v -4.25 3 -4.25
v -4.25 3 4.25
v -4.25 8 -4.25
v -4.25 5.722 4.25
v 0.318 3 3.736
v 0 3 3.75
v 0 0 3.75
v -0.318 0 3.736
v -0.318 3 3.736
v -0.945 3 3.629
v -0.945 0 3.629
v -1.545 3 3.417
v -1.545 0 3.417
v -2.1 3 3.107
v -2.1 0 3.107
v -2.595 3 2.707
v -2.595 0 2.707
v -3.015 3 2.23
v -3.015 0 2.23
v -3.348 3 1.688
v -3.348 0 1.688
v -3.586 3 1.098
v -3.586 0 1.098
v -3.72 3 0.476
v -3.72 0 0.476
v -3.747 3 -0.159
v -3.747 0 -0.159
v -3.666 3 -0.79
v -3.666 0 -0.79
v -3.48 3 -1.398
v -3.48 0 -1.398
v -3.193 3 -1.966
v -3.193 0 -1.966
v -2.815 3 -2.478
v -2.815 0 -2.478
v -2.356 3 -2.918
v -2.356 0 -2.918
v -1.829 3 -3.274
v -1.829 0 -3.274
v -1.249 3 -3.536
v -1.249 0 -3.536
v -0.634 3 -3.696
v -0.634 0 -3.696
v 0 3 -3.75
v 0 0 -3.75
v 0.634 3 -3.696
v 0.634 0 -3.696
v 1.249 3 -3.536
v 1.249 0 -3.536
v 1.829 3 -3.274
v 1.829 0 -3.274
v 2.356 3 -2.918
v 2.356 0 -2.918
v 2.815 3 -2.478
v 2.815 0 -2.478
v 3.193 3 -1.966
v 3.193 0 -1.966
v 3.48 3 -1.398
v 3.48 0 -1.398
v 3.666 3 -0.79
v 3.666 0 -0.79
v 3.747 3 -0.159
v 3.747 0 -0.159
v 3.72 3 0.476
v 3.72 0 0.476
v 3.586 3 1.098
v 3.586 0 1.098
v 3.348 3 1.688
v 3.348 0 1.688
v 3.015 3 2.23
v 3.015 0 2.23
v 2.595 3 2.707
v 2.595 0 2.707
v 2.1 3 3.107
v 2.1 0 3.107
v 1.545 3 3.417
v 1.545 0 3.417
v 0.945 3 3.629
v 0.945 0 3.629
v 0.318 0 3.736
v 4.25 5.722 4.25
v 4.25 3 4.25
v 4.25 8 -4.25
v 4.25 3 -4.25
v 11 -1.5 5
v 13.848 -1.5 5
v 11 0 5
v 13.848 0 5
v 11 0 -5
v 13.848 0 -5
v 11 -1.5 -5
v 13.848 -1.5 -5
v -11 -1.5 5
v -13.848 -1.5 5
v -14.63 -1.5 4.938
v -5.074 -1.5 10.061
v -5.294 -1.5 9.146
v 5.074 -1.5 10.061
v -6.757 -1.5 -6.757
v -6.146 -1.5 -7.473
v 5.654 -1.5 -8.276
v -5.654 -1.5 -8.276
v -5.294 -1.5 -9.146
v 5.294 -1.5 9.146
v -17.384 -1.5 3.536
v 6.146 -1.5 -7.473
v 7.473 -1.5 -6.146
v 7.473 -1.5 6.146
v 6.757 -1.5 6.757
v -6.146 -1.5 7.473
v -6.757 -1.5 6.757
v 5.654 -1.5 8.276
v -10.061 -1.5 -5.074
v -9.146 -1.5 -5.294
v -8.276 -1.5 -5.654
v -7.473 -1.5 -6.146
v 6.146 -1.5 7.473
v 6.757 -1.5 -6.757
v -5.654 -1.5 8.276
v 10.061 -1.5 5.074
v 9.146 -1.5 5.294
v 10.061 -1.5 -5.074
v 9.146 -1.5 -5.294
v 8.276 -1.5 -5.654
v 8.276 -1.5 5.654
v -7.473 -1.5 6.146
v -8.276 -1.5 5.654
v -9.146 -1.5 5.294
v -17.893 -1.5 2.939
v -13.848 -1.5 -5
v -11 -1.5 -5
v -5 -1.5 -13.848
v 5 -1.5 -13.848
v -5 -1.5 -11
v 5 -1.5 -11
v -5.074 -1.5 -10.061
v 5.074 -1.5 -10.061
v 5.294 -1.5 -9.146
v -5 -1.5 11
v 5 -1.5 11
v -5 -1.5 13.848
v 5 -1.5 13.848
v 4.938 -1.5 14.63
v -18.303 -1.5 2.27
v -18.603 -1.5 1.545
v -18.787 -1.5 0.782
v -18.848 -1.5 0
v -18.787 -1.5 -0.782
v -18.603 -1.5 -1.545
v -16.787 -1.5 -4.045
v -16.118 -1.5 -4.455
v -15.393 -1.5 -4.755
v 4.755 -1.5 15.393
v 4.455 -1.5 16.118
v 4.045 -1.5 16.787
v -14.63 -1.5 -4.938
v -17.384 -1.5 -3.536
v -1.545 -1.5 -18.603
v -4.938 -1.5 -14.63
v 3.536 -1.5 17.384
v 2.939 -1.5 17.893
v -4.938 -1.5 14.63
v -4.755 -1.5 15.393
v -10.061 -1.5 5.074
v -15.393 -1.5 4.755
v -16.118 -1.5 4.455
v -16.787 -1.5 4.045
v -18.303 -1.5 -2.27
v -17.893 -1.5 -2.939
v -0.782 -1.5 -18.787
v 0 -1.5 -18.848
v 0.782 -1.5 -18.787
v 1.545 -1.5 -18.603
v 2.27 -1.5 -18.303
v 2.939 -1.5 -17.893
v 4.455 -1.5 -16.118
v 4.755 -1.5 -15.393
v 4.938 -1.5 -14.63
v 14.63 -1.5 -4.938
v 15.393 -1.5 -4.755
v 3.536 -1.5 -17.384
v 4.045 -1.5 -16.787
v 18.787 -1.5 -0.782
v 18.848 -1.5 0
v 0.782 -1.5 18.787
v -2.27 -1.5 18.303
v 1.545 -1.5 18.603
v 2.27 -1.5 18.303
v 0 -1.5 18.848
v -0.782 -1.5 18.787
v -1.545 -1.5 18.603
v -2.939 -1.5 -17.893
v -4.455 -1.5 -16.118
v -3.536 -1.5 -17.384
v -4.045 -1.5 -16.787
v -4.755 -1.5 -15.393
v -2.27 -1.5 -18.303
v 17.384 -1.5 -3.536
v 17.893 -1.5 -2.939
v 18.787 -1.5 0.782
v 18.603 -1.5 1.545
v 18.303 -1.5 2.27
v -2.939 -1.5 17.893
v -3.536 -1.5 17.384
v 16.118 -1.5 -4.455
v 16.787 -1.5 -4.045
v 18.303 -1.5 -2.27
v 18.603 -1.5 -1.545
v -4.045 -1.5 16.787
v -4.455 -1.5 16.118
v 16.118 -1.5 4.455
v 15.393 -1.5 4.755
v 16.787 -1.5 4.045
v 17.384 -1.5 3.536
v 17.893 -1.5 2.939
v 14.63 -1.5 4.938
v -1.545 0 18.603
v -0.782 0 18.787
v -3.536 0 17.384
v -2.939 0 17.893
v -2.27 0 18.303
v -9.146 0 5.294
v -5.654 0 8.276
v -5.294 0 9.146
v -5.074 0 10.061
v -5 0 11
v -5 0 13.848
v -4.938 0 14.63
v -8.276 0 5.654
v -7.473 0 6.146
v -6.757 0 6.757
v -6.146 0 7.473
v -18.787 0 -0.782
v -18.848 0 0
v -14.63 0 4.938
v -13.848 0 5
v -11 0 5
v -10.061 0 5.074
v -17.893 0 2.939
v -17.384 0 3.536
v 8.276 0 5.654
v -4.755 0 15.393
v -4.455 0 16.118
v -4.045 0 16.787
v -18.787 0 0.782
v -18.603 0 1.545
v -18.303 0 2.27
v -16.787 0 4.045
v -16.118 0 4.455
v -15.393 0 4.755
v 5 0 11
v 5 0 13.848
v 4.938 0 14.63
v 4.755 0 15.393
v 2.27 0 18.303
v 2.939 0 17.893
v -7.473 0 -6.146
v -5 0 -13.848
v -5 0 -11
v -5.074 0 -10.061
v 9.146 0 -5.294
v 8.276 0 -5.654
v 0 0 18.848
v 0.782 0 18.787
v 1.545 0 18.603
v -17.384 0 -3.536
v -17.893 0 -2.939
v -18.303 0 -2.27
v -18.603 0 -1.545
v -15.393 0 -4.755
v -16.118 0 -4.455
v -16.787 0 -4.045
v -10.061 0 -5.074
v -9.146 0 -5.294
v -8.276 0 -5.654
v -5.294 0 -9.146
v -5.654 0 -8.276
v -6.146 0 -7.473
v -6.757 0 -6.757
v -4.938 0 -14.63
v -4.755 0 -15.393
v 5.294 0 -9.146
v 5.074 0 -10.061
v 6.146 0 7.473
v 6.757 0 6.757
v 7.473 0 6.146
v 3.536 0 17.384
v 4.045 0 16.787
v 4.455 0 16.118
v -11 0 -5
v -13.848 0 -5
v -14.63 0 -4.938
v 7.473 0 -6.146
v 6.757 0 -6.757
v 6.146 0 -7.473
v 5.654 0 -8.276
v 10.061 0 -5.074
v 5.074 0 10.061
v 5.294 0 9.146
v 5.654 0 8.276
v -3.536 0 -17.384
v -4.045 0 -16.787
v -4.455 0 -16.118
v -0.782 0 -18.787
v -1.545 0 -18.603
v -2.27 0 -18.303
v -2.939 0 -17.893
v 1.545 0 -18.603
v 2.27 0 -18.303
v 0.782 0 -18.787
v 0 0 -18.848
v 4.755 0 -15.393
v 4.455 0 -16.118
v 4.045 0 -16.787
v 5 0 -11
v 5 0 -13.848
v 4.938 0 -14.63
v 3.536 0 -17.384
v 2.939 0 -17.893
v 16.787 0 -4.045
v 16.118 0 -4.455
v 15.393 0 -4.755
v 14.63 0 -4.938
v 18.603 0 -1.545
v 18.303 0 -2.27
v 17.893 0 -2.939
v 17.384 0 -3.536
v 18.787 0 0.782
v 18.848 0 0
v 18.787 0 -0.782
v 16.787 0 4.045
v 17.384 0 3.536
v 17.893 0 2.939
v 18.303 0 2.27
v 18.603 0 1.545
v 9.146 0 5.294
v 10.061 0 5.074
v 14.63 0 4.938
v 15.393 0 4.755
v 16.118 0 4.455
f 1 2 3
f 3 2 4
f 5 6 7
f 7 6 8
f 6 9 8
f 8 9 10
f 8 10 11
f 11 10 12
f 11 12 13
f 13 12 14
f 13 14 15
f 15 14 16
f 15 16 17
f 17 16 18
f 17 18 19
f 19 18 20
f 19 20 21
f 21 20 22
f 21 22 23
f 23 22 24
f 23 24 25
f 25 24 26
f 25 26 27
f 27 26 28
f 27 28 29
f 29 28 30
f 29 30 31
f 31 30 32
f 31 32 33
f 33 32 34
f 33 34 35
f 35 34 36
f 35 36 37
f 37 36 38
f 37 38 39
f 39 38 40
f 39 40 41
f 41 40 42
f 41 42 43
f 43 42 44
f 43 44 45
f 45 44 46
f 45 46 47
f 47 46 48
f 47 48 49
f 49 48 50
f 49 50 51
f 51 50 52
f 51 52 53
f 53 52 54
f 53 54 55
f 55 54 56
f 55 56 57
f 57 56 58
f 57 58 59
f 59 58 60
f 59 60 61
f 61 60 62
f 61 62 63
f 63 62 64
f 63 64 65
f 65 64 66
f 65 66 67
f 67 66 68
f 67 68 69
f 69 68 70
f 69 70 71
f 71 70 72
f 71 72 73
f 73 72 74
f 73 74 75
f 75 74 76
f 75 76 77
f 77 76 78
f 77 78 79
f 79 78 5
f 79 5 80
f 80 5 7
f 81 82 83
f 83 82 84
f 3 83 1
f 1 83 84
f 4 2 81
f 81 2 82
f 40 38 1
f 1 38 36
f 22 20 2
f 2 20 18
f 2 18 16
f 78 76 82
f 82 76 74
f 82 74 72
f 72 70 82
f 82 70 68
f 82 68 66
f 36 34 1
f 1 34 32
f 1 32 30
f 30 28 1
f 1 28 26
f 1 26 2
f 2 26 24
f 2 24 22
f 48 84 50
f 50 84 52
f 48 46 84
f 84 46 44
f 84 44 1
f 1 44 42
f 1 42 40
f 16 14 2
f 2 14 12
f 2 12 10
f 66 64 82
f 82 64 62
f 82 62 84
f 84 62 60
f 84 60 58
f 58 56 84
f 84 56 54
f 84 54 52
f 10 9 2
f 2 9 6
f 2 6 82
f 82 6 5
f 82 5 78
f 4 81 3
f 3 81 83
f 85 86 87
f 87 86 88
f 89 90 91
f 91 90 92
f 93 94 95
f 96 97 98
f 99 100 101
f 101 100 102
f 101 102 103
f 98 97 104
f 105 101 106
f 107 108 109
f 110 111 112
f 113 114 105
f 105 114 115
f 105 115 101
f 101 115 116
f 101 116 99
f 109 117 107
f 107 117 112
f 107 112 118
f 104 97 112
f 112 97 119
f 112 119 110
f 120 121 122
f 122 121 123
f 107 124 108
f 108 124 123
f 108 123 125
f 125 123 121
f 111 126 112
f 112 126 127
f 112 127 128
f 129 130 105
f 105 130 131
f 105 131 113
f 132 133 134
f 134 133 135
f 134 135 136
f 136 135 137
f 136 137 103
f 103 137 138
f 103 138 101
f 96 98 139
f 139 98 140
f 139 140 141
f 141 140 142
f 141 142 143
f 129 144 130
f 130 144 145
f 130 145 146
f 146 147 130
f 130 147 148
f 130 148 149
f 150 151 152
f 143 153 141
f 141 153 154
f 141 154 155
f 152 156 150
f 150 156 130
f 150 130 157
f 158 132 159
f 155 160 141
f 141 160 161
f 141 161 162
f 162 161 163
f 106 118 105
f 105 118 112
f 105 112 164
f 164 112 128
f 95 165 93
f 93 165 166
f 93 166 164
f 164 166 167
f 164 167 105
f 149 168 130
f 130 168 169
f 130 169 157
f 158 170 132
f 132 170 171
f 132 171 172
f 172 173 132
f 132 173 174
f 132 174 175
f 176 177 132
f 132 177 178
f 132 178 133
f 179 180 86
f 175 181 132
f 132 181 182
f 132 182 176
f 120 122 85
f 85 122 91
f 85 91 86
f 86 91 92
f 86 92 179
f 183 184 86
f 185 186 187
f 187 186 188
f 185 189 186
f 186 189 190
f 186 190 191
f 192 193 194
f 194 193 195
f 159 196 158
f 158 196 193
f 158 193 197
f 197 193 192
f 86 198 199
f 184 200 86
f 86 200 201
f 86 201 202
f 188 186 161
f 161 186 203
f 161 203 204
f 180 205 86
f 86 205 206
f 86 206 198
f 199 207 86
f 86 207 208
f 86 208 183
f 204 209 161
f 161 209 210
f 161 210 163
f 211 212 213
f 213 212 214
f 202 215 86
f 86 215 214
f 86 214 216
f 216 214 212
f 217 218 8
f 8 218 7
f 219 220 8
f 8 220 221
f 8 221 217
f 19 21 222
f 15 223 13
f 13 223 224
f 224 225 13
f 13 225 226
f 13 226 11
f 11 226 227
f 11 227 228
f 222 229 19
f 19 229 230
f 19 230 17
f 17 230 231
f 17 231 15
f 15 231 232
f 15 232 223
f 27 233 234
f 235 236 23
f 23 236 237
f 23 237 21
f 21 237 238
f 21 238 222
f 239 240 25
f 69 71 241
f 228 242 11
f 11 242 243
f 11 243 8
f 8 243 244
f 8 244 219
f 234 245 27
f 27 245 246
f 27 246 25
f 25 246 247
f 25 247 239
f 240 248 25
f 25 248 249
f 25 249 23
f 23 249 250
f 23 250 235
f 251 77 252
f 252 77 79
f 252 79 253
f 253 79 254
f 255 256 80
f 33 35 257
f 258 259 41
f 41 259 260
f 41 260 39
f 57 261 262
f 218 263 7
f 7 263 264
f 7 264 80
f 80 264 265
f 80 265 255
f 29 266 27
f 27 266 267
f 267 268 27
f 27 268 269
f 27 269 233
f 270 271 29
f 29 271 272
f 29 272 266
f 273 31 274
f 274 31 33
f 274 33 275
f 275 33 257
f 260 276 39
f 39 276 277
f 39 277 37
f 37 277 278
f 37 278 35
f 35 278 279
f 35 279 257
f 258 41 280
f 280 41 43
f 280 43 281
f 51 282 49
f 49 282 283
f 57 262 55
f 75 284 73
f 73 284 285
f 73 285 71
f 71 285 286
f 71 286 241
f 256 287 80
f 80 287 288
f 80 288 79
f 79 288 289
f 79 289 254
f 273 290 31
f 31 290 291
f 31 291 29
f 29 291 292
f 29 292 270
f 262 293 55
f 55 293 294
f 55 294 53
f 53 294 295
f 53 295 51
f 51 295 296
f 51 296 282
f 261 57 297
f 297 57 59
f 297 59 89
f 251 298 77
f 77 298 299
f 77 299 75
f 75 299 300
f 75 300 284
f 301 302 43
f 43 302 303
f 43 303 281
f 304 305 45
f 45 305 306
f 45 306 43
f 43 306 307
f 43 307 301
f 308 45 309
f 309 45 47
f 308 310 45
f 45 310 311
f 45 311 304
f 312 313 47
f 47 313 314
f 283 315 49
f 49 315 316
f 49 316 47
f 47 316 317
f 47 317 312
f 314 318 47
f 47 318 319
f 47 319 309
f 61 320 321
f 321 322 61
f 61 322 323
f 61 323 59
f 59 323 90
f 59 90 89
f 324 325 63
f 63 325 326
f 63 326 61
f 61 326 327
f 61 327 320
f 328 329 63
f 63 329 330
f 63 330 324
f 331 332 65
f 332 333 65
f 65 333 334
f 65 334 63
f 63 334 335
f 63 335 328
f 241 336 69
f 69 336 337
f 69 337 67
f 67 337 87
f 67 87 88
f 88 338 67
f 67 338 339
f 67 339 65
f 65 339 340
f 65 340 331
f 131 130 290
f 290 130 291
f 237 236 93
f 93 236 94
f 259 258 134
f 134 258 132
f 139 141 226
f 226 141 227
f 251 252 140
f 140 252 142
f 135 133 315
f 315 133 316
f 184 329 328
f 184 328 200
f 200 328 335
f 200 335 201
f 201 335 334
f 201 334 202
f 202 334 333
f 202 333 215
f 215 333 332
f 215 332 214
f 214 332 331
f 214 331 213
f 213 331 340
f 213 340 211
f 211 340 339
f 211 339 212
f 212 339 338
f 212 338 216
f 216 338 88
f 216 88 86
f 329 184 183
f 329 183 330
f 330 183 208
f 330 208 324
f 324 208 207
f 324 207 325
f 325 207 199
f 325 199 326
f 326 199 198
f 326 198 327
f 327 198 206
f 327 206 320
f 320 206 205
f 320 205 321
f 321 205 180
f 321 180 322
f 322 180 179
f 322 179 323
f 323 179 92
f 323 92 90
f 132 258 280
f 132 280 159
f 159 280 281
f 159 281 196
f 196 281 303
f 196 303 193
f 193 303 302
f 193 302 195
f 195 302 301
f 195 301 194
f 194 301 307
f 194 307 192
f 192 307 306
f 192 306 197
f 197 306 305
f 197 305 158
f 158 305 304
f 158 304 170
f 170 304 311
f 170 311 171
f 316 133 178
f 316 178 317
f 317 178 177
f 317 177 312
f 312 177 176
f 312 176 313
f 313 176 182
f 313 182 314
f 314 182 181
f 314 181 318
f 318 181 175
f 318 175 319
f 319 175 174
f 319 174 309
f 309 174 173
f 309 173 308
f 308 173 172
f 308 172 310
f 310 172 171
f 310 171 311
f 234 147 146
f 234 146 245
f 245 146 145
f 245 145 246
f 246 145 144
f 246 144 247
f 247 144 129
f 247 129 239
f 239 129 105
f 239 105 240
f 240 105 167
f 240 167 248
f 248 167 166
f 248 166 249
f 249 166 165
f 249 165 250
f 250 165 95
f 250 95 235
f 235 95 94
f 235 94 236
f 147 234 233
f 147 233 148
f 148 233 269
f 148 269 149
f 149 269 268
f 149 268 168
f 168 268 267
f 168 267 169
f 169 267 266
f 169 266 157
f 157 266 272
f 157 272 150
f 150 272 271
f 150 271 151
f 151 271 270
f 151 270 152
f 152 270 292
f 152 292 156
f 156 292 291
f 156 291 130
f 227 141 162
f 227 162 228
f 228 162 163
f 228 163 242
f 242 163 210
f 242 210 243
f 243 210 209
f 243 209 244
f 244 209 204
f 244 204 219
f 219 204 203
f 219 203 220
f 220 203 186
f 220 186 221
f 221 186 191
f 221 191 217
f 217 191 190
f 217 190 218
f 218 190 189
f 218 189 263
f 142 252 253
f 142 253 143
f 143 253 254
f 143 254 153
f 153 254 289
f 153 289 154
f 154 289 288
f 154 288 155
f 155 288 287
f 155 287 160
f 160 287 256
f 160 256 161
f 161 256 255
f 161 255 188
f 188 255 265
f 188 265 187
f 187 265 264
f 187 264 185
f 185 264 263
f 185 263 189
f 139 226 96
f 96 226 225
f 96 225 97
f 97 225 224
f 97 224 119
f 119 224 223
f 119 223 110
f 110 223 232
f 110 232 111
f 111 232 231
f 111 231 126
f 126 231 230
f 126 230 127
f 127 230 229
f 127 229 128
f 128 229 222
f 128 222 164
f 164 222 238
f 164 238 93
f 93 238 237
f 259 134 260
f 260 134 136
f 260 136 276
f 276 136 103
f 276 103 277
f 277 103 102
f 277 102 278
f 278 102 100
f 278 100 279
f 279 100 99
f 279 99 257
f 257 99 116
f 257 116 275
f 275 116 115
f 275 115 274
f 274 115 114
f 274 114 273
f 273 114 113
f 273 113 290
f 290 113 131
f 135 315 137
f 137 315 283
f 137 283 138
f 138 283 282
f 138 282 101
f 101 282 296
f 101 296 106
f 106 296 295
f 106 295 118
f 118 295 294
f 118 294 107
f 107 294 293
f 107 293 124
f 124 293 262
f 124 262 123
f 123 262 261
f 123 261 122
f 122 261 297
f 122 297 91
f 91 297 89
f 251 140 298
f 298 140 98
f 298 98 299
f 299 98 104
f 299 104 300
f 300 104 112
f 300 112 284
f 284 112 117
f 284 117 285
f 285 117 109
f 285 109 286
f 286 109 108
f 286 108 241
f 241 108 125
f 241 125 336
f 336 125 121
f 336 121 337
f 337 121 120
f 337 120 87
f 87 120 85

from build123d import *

# Parameters (mm, degrees)
SKETCH1_R           = 3.75
BOSS_EXTRUDE1_DEPTH = 3
SKETCH5_W           = 8.5
SKETCH5_H           = 8.5
BOSS_EXTRUDE3_DEPTH = 5
CUT_EXTRUDE4_DEPTH  = 30
SKETCH2_W           = 10
SKETCH2_H           = 37.69615365
SKETCH2_W_2         = 37.69615365
SKETCH2_H_2         = 10
BOSS_EXTRUDE4_DEPTH = 1.5
FILLET1_R           = 5
FILLET2_R           = 6


with BuildPart() as part:
    # Sketch1 → Boss-Extrude1 (new body)
    with BuildSketch(Plane(origin=(0, 0, 0), x_dir=(1, 0, 0), z_dir=(0, 1, 0))):
        with Locations(Location((0, 0, 0), (0, 0, 270))):
            Circle(SKETCH1_R)
    extrude(amount=BOSS_EXTRUDE1_DEPTH)

    # Sketch5 → Boss-Extrude3 (add)
    with BuildSketch(Plane(origin=(0, 3, 0), x_dir=(1, 0, 0), z_dir=(0, 1, 0))):
        Rectangle(SKETCH5_W, SKETCH5_H)
    extrude(amount=BOSS_EXTRUDE3_DEPTH)

    # Sketch19 → Cut-Extrude4 (cut)
    with BuildSketch(Plane.ZY.offset(4.25)):
        Polygon((-4.25, 8), (4.25, 8), (4.25, 5.722431864), align=None)
    extrude(amount=-CUT_EXTRUDE4_DEPTH, mode=Mode.SUBTRACT)

    # Sketch2 → Boss-Extrude4 (add)
    with BuildSketch(Plane.XZ):
        Rectangle(SKETCH2_W, SKETCH2_H)
        Rectangle(SKETCH2_W_2, SKETCH2_H_2)
    extrude(amount=BOSS_EXTRUDE4_DEPTH)

    # Fillet1
    fillet1_edges = [part.edges().sort_by_distance(p)[0] for p in [
        (18.848076825, -0.75, -5),
        (5, -0.75, -18.848076825),
        (-5, -0.75, -18.848076825),
        (-18.848076825, -0.75, -5),
        (-18.848076825, -0.75, 5),
        (18.848076825, -0.75, 5),
        (5, -0.75, 18.848076825),
        (-5, -0.75, 18.848076825),
    ]]
    fillet(fillet1_edges, radius=FILLET1_R - 0.0001)  # a hair under: the kernel refuses the full size

    # Fillet2
    fillet2_edges = [part.edges().sort_by_distance(p)[0] for p in [
        (5, -0.75, -5),
        (-5, -0.75, 5),
        (-5, -0.75, -5),
        (5, -0.75, 5),
    ]]
    fillet(fillet2_edges, radius=FILLET2_R)


solid = part.part
